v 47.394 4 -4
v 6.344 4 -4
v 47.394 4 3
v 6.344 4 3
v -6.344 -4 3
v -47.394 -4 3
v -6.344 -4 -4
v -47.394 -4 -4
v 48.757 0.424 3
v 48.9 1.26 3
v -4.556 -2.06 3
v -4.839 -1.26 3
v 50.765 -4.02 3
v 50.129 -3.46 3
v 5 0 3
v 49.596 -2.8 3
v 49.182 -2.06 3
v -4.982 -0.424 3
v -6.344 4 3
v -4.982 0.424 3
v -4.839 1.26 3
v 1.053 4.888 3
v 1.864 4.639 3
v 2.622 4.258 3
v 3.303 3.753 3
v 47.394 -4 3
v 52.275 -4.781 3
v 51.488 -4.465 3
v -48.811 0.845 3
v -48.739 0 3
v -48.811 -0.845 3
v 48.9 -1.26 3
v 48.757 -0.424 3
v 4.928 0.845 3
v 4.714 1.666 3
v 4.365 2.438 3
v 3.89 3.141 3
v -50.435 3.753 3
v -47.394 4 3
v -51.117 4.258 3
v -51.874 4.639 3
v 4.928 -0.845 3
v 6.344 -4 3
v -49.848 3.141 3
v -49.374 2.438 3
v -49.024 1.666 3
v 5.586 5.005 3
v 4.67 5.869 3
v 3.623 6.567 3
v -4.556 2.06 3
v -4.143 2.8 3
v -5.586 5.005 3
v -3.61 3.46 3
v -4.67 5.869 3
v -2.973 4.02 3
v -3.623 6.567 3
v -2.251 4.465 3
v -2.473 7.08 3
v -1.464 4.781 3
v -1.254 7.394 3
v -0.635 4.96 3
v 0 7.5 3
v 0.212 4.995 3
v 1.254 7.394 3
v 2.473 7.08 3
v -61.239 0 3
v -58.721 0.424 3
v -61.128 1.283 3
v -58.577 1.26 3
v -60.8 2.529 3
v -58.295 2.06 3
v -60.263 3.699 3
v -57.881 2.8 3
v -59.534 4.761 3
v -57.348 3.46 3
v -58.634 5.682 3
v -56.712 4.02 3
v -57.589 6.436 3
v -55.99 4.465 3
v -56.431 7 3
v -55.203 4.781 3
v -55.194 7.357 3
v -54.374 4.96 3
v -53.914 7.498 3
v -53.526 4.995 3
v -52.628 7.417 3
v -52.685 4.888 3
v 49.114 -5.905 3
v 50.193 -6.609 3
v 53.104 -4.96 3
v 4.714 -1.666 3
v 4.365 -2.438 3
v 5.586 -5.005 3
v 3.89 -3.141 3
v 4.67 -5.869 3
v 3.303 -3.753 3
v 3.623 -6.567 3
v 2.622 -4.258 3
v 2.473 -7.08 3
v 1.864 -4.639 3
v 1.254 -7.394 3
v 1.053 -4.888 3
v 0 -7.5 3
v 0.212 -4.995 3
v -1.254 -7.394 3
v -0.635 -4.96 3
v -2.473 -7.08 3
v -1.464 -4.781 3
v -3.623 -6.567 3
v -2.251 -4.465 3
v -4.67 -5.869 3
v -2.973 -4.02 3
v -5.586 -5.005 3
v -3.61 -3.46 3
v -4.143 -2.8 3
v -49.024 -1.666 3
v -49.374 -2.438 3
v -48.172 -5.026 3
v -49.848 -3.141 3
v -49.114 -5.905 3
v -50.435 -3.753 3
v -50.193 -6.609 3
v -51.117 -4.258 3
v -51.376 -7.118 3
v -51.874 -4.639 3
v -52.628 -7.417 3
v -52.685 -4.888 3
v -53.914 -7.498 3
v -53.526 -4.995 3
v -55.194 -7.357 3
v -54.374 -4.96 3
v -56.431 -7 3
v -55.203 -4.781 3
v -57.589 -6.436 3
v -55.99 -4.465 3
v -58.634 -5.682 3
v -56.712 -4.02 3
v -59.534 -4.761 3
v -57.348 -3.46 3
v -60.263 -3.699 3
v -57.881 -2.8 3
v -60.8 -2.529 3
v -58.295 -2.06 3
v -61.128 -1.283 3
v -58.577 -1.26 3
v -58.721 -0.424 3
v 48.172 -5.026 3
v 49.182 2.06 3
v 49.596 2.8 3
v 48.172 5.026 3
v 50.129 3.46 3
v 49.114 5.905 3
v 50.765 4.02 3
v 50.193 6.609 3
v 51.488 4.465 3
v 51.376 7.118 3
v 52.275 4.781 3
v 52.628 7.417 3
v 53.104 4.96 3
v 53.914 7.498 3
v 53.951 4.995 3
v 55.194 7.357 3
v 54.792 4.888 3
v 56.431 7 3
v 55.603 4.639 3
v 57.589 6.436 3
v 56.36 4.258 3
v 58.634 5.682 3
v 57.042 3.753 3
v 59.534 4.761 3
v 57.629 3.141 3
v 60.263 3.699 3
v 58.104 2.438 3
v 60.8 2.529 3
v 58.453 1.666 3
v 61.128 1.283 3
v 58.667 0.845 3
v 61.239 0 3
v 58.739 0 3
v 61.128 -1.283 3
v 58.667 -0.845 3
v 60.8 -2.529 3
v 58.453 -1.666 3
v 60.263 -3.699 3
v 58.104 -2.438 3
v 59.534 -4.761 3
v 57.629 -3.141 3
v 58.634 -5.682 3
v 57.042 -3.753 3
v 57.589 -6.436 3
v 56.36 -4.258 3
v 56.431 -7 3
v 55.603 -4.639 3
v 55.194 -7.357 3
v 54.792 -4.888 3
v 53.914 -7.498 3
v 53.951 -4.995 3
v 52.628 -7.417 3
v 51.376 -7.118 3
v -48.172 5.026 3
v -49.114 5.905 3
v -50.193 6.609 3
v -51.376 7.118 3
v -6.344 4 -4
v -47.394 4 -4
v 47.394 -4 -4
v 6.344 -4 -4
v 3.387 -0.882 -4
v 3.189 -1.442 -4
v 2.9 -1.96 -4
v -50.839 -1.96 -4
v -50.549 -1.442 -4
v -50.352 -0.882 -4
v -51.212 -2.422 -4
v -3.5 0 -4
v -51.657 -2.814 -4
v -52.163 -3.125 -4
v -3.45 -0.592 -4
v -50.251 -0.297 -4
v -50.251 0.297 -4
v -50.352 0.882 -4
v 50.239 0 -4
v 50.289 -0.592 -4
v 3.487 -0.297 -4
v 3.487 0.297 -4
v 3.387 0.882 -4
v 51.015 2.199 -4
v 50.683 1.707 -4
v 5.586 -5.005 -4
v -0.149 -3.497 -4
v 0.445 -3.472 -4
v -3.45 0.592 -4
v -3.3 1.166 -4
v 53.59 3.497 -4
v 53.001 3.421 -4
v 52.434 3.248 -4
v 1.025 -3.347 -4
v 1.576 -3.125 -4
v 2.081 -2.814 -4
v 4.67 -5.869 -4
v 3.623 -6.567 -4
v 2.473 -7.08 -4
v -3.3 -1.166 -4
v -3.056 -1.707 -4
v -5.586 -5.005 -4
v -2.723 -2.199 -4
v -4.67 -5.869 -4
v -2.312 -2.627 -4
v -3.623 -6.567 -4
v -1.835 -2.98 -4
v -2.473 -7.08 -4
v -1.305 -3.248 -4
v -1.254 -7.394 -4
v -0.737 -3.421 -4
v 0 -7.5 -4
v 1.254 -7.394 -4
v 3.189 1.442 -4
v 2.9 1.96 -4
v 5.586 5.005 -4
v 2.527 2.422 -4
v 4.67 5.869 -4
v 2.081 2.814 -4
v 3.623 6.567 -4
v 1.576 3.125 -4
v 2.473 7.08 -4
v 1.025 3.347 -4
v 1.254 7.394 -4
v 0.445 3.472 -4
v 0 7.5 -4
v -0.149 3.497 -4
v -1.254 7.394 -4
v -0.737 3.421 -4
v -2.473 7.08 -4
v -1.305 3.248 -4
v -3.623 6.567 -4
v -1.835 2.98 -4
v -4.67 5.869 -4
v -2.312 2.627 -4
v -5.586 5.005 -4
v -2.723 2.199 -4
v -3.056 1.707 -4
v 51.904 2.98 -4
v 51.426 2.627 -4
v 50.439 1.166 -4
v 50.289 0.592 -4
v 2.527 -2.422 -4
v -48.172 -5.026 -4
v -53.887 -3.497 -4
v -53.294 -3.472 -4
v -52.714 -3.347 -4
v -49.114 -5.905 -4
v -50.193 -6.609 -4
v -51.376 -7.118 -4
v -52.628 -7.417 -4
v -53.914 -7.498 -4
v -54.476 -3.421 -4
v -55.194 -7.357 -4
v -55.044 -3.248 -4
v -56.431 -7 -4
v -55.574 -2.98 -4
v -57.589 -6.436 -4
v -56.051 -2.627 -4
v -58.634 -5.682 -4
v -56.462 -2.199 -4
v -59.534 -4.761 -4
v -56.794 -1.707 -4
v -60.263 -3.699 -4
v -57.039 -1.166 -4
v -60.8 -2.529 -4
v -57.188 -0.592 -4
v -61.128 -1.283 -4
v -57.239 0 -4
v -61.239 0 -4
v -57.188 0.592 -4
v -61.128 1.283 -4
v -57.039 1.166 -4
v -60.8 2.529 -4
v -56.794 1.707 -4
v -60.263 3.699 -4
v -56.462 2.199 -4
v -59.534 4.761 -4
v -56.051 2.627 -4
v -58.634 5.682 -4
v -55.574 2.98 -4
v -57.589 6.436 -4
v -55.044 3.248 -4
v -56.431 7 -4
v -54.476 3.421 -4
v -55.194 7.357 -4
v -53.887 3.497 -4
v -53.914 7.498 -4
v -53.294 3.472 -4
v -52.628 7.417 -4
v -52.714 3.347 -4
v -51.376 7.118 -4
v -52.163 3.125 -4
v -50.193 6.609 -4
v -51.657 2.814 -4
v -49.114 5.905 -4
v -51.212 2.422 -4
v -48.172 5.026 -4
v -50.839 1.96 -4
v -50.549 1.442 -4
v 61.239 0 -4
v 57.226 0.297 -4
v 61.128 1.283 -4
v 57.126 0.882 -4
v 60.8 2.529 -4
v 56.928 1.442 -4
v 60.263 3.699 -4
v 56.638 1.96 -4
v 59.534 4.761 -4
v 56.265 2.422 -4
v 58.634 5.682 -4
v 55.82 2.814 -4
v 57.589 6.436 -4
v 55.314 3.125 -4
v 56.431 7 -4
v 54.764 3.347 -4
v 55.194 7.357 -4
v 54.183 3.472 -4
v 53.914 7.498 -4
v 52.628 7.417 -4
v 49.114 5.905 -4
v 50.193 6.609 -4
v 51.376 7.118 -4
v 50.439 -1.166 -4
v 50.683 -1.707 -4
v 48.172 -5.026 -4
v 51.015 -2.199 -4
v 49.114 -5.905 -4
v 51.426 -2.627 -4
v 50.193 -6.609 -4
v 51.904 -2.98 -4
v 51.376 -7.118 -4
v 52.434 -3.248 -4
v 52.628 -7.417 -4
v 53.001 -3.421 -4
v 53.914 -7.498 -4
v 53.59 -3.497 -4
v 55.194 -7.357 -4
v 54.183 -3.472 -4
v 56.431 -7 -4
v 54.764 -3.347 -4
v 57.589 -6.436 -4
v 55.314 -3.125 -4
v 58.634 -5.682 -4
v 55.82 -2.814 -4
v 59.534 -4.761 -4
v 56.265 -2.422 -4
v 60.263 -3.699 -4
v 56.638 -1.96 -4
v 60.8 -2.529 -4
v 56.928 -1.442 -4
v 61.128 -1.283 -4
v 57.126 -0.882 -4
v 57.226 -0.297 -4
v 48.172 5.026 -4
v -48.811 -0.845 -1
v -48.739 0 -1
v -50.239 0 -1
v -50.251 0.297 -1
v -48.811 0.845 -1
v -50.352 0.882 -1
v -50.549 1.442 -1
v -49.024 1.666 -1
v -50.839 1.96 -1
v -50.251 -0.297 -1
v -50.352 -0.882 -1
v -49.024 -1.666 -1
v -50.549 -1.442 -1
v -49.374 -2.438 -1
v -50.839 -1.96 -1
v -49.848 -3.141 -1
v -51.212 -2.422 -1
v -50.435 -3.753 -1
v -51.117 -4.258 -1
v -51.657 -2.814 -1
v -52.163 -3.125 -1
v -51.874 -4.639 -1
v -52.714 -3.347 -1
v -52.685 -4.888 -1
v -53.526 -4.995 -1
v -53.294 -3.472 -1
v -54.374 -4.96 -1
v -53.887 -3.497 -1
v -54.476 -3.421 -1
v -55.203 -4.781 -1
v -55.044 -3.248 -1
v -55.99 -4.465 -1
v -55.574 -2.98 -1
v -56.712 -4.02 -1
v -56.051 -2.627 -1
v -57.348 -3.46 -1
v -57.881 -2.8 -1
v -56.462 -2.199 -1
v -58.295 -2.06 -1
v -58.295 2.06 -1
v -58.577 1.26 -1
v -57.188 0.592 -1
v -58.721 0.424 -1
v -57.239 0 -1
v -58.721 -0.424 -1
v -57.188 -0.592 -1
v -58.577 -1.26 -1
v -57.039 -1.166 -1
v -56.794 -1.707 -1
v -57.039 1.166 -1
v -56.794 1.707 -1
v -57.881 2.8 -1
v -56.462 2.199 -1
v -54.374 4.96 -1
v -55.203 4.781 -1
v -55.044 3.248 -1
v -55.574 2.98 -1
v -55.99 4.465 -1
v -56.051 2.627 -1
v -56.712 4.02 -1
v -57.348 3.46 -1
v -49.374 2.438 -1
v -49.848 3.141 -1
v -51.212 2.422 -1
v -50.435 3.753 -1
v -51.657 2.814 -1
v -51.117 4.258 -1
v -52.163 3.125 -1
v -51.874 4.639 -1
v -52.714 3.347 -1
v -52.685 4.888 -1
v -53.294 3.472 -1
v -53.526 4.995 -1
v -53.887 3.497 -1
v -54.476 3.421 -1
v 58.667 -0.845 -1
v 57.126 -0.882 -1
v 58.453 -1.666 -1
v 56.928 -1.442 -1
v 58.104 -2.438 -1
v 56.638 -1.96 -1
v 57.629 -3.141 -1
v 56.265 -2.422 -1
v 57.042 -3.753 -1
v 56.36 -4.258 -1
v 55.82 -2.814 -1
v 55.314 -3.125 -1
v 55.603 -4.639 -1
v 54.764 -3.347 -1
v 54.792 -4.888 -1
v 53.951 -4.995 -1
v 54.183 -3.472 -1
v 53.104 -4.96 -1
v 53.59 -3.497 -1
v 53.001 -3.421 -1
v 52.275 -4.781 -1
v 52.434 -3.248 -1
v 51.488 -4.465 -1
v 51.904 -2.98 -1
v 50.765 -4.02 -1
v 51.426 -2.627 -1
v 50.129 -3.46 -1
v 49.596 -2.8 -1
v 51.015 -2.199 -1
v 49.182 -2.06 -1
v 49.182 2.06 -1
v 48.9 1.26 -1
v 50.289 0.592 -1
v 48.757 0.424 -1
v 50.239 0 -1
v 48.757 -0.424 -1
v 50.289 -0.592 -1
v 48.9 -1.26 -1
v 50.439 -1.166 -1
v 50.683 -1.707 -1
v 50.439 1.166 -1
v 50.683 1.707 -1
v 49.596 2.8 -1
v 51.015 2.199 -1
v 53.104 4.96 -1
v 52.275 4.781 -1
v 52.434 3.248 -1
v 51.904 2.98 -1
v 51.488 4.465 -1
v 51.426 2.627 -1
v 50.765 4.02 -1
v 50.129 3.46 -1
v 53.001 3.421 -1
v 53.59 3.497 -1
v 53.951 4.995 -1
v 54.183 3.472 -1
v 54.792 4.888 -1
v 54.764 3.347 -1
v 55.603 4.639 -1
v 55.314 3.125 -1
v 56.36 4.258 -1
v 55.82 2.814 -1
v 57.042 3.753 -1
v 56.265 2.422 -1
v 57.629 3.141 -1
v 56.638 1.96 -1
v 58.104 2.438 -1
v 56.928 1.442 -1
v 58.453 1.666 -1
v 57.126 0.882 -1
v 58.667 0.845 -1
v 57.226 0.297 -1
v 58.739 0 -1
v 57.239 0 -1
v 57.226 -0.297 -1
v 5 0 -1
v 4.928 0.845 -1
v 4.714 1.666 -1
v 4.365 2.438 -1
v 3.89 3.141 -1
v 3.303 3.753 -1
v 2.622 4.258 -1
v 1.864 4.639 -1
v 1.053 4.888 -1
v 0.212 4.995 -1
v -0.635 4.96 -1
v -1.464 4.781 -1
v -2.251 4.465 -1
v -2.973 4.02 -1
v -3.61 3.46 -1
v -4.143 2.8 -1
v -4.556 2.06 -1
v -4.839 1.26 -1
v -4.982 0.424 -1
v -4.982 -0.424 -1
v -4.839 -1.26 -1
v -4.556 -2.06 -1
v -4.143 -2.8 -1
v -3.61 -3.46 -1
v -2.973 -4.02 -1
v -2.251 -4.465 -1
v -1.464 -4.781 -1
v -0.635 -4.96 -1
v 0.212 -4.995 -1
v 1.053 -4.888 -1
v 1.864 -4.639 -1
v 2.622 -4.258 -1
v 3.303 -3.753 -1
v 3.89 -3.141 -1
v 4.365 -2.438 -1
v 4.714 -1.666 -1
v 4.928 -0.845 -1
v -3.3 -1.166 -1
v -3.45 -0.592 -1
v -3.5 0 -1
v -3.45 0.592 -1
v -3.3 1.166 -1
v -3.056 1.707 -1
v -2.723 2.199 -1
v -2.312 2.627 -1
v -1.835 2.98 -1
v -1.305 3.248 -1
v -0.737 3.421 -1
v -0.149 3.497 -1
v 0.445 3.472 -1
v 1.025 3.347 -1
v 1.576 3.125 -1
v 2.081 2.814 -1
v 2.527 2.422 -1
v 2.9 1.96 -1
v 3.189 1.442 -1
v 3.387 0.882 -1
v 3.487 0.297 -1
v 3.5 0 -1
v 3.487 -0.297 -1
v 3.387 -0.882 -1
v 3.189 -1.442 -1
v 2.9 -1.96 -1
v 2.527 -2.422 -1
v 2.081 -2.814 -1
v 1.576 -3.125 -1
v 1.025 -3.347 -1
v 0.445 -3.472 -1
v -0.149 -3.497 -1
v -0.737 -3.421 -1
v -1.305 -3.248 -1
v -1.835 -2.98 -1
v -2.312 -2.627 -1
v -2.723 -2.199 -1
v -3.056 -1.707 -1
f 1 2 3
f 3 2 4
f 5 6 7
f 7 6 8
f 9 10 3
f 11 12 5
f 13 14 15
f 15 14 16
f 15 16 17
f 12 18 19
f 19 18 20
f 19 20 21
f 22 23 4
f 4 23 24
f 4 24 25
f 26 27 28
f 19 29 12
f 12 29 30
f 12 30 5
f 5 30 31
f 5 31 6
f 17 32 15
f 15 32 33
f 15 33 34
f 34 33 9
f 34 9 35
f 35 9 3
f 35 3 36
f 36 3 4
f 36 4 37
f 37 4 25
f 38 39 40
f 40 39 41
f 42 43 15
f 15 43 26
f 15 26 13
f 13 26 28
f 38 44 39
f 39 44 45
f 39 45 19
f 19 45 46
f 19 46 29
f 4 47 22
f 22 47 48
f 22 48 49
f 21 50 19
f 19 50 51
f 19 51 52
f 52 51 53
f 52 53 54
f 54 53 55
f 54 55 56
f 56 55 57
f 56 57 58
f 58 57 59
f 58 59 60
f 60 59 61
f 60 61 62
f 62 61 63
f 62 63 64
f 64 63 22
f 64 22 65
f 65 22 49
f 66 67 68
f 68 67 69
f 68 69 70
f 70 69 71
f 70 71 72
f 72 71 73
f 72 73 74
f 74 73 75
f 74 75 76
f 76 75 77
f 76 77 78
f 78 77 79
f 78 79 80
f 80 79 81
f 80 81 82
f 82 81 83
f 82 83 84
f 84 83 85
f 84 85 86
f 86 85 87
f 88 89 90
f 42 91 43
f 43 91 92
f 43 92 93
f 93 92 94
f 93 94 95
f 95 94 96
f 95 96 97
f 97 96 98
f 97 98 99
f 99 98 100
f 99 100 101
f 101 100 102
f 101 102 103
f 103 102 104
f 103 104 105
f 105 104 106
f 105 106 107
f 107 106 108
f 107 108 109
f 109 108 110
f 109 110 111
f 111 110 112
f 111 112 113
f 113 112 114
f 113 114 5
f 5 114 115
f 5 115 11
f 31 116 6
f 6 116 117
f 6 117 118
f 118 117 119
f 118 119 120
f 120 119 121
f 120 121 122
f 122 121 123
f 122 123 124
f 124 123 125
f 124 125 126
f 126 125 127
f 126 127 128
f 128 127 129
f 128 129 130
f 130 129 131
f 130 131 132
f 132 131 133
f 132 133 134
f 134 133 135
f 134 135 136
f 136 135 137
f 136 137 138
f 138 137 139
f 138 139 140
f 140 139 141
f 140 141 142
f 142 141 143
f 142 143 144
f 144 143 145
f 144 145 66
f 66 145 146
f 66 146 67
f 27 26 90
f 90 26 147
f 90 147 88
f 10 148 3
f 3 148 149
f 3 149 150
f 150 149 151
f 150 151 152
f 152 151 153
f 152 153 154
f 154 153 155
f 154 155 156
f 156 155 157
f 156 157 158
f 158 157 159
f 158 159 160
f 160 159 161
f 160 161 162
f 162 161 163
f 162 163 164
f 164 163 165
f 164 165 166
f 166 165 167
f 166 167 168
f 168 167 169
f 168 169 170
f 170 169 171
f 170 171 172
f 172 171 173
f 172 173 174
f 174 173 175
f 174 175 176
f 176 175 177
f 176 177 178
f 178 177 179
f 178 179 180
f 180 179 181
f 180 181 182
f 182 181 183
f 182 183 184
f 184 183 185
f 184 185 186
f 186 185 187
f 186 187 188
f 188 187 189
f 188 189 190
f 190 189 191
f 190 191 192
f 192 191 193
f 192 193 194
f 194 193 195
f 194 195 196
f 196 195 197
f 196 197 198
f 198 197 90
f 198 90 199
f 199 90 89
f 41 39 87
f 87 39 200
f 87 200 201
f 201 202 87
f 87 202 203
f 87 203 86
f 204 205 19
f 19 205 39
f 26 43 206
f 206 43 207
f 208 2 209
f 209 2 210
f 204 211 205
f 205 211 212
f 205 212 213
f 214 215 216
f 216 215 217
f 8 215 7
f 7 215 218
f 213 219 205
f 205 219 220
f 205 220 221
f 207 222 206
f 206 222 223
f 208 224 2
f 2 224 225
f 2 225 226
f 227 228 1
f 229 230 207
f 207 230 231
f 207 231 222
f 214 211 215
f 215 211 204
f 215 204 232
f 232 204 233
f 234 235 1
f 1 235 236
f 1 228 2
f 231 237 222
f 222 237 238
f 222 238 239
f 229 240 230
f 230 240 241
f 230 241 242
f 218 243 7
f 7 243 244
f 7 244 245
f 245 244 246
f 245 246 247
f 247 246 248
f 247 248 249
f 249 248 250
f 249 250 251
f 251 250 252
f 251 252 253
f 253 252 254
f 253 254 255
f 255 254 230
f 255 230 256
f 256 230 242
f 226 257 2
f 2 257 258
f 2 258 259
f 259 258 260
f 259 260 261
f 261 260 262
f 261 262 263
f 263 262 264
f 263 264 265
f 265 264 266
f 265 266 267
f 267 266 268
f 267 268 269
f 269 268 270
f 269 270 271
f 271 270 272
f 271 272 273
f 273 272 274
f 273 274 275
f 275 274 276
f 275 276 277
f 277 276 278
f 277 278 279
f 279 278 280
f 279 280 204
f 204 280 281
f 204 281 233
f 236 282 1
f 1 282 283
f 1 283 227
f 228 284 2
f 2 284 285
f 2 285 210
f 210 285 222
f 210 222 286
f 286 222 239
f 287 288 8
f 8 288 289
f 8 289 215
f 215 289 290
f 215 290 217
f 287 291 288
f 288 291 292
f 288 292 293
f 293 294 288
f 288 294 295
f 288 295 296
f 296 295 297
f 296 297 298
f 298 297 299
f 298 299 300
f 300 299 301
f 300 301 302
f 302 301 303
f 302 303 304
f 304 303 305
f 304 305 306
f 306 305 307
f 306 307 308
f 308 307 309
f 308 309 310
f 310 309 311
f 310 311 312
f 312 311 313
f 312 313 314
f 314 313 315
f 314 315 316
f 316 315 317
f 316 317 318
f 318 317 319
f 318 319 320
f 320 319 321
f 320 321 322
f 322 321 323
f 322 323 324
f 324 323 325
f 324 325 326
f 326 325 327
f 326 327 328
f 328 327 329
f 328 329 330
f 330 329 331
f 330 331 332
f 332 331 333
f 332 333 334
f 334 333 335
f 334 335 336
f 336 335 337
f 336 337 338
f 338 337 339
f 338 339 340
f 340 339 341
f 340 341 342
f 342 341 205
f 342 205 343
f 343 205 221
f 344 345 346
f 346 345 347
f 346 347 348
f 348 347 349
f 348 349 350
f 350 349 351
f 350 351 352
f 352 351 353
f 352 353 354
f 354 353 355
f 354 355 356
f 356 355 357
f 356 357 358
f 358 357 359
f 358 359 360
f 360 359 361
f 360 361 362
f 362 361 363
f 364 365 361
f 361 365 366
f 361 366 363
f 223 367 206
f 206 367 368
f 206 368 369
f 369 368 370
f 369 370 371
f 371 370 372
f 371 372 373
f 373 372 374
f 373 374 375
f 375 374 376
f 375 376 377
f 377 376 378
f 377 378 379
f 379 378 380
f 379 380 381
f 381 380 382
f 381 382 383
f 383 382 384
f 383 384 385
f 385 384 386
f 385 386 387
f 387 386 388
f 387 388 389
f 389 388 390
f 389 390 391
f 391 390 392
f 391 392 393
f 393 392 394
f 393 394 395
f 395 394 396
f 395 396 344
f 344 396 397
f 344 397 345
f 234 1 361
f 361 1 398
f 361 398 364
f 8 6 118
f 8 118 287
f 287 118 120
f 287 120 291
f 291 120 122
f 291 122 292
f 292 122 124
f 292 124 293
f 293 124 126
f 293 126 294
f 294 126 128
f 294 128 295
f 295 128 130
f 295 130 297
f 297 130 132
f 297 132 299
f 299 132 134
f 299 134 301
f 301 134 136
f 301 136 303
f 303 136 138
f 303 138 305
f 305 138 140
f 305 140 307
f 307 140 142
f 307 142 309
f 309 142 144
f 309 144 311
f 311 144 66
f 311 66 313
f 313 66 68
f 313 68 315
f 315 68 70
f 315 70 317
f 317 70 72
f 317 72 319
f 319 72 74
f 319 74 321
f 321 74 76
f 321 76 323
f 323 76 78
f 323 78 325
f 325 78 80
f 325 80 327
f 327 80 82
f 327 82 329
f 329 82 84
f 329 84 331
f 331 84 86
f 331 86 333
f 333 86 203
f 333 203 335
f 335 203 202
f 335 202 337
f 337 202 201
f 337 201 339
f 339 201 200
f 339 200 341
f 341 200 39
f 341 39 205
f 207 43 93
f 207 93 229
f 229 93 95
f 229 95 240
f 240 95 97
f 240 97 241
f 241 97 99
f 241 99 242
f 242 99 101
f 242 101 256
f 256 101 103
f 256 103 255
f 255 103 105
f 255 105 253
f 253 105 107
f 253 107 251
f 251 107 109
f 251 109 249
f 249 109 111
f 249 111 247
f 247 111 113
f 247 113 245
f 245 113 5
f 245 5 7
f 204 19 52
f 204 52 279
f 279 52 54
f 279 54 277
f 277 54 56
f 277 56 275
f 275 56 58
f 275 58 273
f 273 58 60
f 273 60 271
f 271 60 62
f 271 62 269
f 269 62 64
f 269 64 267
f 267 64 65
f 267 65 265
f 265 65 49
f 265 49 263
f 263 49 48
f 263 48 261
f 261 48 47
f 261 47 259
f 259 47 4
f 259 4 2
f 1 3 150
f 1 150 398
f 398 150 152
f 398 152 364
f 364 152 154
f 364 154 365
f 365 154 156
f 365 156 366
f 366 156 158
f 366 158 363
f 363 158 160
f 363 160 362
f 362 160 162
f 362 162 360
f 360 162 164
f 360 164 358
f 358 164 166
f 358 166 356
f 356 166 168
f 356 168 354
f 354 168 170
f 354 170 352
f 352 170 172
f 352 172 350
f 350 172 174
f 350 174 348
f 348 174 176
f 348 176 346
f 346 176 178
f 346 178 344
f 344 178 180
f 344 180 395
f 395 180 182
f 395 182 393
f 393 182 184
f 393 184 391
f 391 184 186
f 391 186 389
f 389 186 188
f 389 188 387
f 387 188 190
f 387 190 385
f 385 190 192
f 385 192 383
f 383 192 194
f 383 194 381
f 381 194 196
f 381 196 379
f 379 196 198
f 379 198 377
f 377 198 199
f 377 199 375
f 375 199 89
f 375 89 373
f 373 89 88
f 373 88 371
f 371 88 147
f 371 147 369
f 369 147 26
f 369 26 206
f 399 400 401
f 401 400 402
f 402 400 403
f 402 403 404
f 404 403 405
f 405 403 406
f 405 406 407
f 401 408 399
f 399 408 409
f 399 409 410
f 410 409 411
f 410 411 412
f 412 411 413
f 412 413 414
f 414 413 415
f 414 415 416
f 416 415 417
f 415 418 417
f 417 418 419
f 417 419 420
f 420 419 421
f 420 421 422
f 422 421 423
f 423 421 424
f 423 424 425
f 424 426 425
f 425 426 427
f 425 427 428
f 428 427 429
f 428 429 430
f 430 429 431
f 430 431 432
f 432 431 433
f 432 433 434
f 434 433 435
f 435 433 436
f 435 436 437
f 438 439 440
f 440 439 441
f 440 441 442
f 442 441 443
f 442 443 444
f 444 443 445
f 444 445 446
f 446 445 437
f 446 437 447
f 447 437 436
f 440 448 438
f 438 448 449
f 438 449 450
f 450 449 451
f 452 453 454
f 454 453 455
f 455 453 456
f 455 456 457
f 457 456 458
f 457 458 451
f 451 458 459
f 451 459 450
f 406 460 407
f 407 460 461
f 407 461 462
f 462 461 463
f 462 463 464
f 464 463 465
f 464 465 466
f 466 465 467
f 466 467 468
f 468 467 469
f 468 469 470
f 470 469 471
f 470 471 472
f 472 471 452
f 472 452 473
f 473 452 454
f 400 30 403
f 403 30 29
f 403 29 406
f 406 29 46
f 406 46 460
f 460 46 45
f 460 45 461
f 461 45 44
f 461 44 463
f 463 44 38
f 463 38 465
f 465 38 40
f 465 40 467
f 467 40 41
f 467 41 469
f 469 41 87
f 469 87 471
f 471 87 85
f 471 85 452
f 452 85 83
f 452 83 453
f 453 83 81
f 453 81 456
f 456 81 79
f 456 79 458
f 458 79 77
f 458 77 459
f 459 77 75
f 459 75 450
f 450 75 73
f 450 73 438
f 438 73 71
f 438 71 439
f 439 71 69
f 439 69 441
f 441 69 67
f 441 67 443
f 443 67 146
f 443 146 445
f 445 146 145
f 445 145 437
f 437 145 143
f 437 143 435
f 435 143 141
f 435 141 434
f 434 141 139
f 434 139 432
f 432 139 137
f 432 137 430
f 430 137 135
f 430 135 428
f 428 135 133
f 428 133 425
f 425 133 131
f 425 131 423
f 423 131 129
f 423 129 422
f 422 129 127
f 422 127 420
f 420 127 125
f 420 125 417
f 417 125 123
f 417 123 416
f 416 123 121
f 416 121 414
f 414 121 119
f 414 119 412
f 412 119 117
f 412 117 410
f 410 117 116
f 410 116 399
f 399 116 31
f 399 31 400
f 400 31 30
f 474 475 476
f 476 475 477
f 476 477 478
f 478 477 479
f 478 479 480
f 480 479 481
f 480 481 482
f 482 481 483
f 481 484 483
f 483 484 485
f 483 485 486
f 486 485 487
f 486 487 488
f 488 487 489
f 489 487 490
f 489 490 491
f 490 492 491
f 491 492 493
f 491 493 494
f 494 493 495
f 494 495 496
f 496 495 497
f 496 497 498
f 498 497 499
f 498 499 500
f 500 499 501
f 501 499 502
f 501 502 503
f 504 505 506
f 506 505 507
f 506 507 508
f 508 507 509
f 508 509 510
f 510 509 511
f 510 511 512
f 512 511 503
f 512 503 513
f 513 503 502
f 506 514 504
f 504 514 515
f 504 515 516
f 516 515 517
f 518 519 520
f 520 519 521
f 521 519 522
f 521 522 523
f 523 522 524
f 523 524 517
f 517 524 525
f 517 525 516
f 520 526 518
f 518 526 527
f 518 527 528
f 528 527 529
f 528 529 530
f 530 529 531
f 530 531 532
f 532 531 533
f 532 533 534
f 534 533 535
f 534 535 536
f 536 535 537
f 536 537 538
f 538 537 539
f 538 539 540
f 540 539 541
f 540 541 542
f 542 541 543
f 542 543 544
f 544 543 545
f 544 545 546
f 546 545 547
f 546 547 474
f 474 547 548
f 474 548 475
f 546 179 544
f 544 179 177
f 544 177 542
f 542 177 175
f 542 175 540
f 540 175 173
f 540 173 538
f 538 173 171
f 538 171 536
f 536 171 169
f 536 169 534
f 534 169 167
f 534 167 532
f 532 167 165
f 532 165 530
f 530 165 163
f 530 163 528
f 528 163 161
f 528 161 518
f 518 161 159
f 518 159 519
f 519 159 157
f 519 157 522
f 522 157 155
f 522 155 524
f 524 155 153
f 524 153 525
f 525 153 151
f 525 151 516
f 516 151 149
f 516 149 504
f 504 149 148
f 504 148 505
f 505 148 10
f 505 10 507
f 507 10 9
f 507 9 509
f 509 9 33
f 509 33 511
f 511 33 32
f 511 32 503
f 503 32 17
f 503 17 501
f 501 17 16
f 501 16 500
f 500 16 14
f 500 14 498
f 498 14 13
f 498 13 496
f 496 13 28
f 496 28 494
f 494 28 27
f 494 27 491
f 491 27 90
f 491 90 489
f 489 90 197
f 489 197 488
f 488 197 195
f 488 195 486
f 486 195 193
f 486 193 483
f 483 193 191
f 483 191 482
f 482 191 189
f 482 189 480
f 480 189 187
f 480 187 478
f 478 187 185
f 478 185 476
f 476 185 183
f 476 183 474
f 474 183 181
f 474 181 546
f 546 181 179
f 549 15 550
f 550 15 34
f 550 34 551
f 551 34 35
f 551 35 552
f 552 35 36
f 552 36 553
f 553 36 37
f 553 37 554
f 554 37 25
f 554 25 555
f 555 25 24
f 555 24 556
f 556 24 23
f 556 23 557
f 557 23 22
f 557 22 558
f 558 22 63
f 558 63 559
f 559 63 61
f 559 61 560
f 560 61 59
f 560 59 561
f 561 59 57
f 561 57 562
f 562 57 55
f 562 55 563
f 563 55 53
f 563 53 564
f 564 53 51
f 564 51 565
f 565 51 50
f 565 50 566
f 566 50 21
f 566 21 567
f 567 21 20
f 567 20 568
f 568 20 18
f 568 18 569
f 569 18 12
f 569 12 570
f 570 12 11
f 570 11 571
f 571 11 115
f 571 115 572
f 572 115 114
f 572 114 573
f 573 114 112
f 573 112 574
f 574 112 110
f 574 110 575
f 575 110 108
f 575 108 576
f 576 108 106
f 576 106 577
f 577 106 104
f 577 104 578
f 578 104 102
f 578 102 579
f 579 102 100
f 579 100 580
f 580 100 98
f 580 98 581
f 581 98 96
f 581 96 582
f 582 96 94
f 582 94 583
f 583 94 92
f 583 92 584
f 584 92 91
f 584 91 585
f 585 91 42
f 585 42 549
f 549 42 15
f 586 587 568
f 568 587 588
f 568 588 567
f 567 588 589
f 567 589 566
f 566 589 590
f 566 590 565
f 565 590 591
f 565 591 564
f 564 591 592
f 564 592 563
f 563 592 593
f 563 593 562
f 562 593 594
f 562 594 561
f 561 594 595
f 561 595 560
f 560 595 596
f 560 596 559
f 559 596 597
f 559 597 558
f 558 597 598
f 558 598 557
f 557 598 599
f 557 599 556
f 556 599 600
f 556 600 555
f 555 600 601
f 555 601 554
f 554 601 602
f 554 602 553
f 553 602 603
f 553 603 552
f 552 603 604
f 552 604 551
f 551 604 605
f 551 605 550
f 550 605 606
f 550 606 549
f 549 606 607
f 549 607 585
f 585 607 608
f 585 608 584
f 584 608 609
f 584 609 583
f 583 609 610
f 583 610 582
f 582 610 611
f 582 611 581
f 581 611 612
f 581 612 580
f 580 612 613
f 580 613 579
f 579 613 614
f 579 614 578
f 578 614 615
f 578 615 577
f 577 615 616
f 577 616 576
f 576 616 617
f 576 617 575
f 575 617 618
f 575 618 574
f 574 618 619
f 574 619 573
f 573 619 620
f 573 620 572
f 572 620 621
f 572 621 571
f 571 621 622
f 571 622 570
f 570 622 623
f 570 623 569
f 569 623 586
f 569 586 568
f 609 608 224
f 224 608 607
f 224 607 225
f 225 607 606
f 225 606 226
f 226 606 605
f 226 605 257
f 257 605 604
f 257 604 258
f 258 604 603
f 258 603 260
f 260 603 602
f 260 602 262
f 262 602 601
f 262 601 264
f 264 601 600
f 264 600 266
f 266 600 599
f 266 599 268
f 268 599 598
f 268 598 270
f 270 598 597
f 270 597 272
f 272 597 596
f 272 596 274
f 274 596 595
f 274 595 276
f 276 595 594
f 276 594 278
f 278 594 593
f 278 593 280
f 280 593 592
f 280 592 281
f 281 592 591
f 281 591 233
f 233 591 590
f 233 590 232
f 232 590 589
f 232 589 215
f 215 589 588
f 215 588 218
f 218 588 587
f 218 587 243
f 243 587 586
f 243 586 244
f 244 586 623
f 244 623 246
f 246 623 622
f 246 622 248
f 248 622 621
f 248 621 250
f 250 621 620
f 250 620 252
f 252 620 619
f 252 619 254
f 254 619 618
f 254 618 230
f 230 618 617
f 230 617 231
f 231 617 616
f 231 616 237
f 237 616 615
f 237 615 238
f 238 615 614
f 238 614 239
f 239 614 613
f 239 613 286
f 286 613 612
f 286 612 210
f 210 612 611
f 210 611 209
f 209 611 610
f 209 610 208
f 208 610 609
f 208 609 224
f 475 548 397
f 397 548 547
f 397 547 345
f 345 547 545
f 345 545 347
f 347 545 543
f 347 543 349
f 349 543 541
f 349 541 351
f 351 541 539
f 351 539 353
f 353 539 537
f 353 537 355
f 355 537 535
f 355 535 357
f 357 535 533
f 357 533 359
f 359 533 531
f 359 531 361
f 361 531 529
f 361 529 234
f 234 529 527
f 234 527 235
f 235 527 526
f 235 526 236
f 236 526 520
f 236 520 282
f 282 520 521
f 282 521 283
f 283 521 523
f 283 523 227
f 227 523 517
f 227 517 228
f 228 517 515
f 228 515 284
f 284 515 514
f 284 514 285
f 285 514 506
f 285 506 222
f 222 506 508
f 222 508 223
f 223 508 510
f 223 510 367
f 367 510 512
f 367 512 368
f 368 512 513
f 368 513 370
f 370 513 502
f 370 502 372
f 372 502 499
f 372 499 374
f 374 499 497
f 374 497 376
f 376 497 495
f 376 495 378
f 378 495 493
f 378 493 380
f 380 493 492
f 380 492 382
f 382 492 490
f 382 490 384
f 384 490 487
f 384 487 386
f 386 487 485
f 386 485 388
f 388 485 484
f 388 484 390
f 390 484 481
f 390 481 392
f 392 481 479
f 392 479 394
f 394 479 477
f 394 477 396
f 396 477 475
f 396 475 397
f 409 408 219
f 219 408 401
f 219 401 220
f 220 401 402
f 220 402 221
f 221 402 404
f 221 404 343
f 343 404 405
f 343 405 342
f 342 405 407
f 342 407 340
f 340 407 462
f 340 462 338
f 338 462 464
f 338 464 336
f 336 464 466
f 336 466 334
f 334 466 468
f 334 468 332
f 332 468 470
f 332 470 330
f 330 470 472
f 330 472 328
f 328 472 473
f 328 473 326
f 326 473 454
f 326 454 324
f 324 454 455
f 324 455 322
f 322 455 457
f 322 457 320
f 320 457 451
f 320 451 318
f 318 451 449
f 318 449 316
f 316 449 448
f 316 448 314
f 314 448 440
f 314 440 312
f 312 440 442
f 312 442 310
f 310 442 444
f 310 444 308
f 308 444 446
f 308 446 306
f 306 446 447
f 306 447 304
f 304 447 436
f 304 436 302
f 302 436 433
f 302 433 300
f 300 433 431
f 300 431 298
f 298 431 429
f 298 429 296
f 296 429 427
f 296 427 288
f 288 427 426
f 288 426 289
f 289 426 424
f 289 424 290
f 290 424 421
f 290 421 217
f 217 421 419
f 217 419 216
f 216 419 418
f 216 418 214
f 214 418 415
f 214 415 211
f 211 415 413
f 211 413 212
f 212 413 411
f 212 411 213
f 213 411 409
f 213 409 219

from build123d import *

# Parameters (mm, degrees)
SKETCH1_W           = 120
SKETCH1_H           = 8
SKETCH1_R           = 1.5
BOSS_EXTRUDE1_DEPTH = 3
FILLET2_R           = 4
FILLET3_R           = 4
FILLET4_R           = 4
SKETCH2_R           = 1.5
CUT_EXTRUDE1_DEPTH  = 3
CUT_EXTRUDE2_DEPTH  = 3
SKETCH4_R           = 1.5
BOSS_EXTRUDE2_DEPTH = 4
SKETCH5_R           = 7.5
SKETCH5_R_2         = 1.5
BOSS_EXTRUDE3_DEPTH = 7
SKETCH6_R           = 5
CUT_EXTRUDE3_DEPTH  = 4
SKETCH7_R           = 3.5
CUT_EXTRUDE4_DEPTH  = 4
SKETCH8_R           = 5.1
SKETCH8_R_2         = 5
CUT_EXTRUDE5_DEPTH  = 4


with BuildPart() as part:
    # Sketch1 → Boss-Extrude1 (new body)
    with BuildSketch(Plane.XY):
        Rectangle(SKETCH1_W, SKETCH1_H)
        Circle(SKETCH1_R, mode=Mode.SUBTRACT)
    extrude(amount=BOSS_EXTRUDE1_DEPTH)

    # Fillet2
    fillet2_edges = [part.edges().sort_by_distance(p)[0] for p in [
        (-60, 4, 1.5),
    ]]
    fillet(fillet2_edges, radius=FILLET2_R)

    # Fillet3
    fillet3_edges = [part.edges().sort_by_distance(p)[0] for p in [
        (-60, -4, 1.5),
    ]]
    fillet(fillet3_edges, radius=FILLET3_R - 0.0001)  # a hair under: the kernel refuses the full size

    # Fillet4
    fillet4_edges = [part.edges().sort_by_distance(p)[0] for p in [
        (60, -4, 1.5),
        (60, 4, 1.5),
    ]]
    fillet(fillet4_edges, radius=FILLET4_R - 0.0001)  # a hair under: the kernel refuses the full size

    # Sketch2 → Cut-Extrude1 (cut)
    with BuildSketch(Plane.XY.offset(3)):
        with Locations((-53.738621028, 0)):
            Circle(SKETCH2_R)
        with Locations((53.738621028, 0)):
            Circle(SKETCH2_R)
    extrude(amount=-CUT_EXTRUDE1_DEPTH, mode=Mode.SUBTRACT)

    # Sketch3 → Cut-Extrude2 (cut)
    with BuildSketch(Plane.XY.offset(3)):
        with BuildLine():
            ThreePointArc((-53.738621028, -4), (-57.738621028, 0), (-53.738621028, 4))
            Line((-53.738621028, 4), (-56, 4))
            ThreePointArc((-56, 4), (-58.828427125, 2.828427125), (-60, 0))
            ThreePointArc((-60, 0), (-58.828427125, -2.828427125), (-56, -4))
            Line((-56, -4), (-53.738621028, -4))
        make_face()
        with BuildLine():
            ThreePointArc((60, 0), (58.828427125, 2.828427125), (56, 4))
            Line((56, 4), (53.738621028, 4))
            ThreePointArc((53.738621028, 4), (57.738621028, 0), (53.738621028, -4))
            Line((53.738621028, -4), (56, -4))
            ThreePointArc((56, -4), (58.828427125, -2.828427125), (60, 0))
        make_face()
    extrude(amount=-CUT_EXTRUDE2_DEPTH, mode=Mode.SUBTRACT)


with BuildPart() as cut_extrude2_kept_piece:
    # of the separate pieces the step leaves, the one the design keeps (cut_extrude2_pieces_kept)
    add(part.part.solids().sort_by_distance((-53.738621028, -4, 0))[0])

    # Sketch4 → Boss-Extrude2 (add)
    with BuildSketch(Plane(origin=(0, 0, 0), x_dir=(-1, 0, 0), z_dir=(0, 0, -1))):
        with BuildLine():
            Line((53.738621028, 4), (-53.738621028, 4))
            ThreePointArc((-53.738621028, 4), (-57.738621028, 0), (-53.738621028, -4))
            Line((-53.738621028, -4), (53.738621028, -4))
            ThreePointArc((53.738621028, -4), (57.738621028, 0), (53.738621028, 4))
        make_face()
        with Locations(Location((-53.738621028, 0, 0), (0, 0, 180))):
            Circle(SKETCH4_R, mode=Mode.SUBTRACT)
        Circle(SKETCH4_R, mode=Mode.SUBTRACT)
        with Locations(Location((53.738621028, 0, 0), (0, 0, 180))):
            Circle(SKETCH4_R, mode=Mode.SUBTRACT)
    extrude(amount=BOSS_EXTRUDE2_DEPTH)

    # Sketch5 → Boss-Extrude3 (add, through all)
    # profile 1 of 3: a face of its own
    with BuildSketch(Plane.XY.offset(3)):
        with Locations((-53.738621028, 0)):
            Circle(SKETCH5_R)
        with Locations((-53.738621028, 0)):
            Circle(SKETCH5_R_2, mode=Mode.SUBTRACT)
    # profile 2 of 3: a face of its own
    with BuildSketch(Plane.XY.offset(3)):
        Circle(SKETCH5_R)
        with Locations(Location((0, 0, 0), (0, 0, 180))):
            Circle(SKETCH5_R_2, mode=Mode.SUBTRACT)
    # profile 3 of 3: a face of its own
    with BuildSketch(Plane.XY.offset(3)):
        with Locations((53.738621028, 0)):
            Circle(SKETCH5_R)
        with Locations((53.738621028, 0)):
            Circle(SKETCH5_R_2, mode=Mode.SUBTRACT)
    extrude(amount=-BOSS_EXTRUDE3_DEPTH)

    # Sketch6 → Cut-Extrude3 (cut)
    with BuildSketch(Plane.XY.offset(3)):
        with Locations((-53.738621028, 0)):
            Circle(SKETCH6_R)
        Circle(SKETCH6_R)
        with Locations((53.738621028, 0)):
            Circle(SKETCH6_R)
    extrude(amount=-CUT_EXTRUDE3_DEPTH, mode=Mode.SUBTRACT)

    # Sketch7 → Cut-Extrude4 (cut)
    with BuildSketch(Plane(origin=(0, 0, -4), x_dir=(-1, 0, 0), z_dir=(0, 0, -1))):
        with Locations((-53.738621028, 0)):
            Circle(SKETCH7_R)
        Circle(SKETCH7_R)
        with Locations((53.738621028, 0)):
            Circle(SKETCH7_R)
    extrude(amount=-CUT_EXTRUDE4_DEPTH, mode=Mode.SUBTRACT)

    # Sketch8 → Cut-Extrude5 (cut)
    # profile 1 of 3: a face of its own
    with BuildSketch(Plane.XY.offset(3)):
        with Locations((-53.738621028, 0)):
            Circle(SKETCH8_R)
        with Locations((-53.738621028, 0)):
            Circle(SKETCH8_R_2, mode=Mode.SUBTRACT)
    # profile 2 of 3: a face of its own
    with BuildSketch(Plane.XY.offset(3)):
        Circle(SKETCH8_R)
        Circle(SKETCH8_R_2, mode=Mode.SUBTRACT)
    # profile 3 of 3: a face of its own
    with BuildSketch(Plane.XY.offset(3)):
        with Locations((53.738621028, 0)):
            Circle(SKETCH8_R)
        with Locations((53.738621028, 0)):
            Circle(SKETCH8_R_2, mode=Mode.SUBTRACT)
    extrude(amount=-CUT_EXTRUDE5_DEPTH, mode=Mode.SUBTRACT)


solid = cut_extrude2_kept_piece.part
